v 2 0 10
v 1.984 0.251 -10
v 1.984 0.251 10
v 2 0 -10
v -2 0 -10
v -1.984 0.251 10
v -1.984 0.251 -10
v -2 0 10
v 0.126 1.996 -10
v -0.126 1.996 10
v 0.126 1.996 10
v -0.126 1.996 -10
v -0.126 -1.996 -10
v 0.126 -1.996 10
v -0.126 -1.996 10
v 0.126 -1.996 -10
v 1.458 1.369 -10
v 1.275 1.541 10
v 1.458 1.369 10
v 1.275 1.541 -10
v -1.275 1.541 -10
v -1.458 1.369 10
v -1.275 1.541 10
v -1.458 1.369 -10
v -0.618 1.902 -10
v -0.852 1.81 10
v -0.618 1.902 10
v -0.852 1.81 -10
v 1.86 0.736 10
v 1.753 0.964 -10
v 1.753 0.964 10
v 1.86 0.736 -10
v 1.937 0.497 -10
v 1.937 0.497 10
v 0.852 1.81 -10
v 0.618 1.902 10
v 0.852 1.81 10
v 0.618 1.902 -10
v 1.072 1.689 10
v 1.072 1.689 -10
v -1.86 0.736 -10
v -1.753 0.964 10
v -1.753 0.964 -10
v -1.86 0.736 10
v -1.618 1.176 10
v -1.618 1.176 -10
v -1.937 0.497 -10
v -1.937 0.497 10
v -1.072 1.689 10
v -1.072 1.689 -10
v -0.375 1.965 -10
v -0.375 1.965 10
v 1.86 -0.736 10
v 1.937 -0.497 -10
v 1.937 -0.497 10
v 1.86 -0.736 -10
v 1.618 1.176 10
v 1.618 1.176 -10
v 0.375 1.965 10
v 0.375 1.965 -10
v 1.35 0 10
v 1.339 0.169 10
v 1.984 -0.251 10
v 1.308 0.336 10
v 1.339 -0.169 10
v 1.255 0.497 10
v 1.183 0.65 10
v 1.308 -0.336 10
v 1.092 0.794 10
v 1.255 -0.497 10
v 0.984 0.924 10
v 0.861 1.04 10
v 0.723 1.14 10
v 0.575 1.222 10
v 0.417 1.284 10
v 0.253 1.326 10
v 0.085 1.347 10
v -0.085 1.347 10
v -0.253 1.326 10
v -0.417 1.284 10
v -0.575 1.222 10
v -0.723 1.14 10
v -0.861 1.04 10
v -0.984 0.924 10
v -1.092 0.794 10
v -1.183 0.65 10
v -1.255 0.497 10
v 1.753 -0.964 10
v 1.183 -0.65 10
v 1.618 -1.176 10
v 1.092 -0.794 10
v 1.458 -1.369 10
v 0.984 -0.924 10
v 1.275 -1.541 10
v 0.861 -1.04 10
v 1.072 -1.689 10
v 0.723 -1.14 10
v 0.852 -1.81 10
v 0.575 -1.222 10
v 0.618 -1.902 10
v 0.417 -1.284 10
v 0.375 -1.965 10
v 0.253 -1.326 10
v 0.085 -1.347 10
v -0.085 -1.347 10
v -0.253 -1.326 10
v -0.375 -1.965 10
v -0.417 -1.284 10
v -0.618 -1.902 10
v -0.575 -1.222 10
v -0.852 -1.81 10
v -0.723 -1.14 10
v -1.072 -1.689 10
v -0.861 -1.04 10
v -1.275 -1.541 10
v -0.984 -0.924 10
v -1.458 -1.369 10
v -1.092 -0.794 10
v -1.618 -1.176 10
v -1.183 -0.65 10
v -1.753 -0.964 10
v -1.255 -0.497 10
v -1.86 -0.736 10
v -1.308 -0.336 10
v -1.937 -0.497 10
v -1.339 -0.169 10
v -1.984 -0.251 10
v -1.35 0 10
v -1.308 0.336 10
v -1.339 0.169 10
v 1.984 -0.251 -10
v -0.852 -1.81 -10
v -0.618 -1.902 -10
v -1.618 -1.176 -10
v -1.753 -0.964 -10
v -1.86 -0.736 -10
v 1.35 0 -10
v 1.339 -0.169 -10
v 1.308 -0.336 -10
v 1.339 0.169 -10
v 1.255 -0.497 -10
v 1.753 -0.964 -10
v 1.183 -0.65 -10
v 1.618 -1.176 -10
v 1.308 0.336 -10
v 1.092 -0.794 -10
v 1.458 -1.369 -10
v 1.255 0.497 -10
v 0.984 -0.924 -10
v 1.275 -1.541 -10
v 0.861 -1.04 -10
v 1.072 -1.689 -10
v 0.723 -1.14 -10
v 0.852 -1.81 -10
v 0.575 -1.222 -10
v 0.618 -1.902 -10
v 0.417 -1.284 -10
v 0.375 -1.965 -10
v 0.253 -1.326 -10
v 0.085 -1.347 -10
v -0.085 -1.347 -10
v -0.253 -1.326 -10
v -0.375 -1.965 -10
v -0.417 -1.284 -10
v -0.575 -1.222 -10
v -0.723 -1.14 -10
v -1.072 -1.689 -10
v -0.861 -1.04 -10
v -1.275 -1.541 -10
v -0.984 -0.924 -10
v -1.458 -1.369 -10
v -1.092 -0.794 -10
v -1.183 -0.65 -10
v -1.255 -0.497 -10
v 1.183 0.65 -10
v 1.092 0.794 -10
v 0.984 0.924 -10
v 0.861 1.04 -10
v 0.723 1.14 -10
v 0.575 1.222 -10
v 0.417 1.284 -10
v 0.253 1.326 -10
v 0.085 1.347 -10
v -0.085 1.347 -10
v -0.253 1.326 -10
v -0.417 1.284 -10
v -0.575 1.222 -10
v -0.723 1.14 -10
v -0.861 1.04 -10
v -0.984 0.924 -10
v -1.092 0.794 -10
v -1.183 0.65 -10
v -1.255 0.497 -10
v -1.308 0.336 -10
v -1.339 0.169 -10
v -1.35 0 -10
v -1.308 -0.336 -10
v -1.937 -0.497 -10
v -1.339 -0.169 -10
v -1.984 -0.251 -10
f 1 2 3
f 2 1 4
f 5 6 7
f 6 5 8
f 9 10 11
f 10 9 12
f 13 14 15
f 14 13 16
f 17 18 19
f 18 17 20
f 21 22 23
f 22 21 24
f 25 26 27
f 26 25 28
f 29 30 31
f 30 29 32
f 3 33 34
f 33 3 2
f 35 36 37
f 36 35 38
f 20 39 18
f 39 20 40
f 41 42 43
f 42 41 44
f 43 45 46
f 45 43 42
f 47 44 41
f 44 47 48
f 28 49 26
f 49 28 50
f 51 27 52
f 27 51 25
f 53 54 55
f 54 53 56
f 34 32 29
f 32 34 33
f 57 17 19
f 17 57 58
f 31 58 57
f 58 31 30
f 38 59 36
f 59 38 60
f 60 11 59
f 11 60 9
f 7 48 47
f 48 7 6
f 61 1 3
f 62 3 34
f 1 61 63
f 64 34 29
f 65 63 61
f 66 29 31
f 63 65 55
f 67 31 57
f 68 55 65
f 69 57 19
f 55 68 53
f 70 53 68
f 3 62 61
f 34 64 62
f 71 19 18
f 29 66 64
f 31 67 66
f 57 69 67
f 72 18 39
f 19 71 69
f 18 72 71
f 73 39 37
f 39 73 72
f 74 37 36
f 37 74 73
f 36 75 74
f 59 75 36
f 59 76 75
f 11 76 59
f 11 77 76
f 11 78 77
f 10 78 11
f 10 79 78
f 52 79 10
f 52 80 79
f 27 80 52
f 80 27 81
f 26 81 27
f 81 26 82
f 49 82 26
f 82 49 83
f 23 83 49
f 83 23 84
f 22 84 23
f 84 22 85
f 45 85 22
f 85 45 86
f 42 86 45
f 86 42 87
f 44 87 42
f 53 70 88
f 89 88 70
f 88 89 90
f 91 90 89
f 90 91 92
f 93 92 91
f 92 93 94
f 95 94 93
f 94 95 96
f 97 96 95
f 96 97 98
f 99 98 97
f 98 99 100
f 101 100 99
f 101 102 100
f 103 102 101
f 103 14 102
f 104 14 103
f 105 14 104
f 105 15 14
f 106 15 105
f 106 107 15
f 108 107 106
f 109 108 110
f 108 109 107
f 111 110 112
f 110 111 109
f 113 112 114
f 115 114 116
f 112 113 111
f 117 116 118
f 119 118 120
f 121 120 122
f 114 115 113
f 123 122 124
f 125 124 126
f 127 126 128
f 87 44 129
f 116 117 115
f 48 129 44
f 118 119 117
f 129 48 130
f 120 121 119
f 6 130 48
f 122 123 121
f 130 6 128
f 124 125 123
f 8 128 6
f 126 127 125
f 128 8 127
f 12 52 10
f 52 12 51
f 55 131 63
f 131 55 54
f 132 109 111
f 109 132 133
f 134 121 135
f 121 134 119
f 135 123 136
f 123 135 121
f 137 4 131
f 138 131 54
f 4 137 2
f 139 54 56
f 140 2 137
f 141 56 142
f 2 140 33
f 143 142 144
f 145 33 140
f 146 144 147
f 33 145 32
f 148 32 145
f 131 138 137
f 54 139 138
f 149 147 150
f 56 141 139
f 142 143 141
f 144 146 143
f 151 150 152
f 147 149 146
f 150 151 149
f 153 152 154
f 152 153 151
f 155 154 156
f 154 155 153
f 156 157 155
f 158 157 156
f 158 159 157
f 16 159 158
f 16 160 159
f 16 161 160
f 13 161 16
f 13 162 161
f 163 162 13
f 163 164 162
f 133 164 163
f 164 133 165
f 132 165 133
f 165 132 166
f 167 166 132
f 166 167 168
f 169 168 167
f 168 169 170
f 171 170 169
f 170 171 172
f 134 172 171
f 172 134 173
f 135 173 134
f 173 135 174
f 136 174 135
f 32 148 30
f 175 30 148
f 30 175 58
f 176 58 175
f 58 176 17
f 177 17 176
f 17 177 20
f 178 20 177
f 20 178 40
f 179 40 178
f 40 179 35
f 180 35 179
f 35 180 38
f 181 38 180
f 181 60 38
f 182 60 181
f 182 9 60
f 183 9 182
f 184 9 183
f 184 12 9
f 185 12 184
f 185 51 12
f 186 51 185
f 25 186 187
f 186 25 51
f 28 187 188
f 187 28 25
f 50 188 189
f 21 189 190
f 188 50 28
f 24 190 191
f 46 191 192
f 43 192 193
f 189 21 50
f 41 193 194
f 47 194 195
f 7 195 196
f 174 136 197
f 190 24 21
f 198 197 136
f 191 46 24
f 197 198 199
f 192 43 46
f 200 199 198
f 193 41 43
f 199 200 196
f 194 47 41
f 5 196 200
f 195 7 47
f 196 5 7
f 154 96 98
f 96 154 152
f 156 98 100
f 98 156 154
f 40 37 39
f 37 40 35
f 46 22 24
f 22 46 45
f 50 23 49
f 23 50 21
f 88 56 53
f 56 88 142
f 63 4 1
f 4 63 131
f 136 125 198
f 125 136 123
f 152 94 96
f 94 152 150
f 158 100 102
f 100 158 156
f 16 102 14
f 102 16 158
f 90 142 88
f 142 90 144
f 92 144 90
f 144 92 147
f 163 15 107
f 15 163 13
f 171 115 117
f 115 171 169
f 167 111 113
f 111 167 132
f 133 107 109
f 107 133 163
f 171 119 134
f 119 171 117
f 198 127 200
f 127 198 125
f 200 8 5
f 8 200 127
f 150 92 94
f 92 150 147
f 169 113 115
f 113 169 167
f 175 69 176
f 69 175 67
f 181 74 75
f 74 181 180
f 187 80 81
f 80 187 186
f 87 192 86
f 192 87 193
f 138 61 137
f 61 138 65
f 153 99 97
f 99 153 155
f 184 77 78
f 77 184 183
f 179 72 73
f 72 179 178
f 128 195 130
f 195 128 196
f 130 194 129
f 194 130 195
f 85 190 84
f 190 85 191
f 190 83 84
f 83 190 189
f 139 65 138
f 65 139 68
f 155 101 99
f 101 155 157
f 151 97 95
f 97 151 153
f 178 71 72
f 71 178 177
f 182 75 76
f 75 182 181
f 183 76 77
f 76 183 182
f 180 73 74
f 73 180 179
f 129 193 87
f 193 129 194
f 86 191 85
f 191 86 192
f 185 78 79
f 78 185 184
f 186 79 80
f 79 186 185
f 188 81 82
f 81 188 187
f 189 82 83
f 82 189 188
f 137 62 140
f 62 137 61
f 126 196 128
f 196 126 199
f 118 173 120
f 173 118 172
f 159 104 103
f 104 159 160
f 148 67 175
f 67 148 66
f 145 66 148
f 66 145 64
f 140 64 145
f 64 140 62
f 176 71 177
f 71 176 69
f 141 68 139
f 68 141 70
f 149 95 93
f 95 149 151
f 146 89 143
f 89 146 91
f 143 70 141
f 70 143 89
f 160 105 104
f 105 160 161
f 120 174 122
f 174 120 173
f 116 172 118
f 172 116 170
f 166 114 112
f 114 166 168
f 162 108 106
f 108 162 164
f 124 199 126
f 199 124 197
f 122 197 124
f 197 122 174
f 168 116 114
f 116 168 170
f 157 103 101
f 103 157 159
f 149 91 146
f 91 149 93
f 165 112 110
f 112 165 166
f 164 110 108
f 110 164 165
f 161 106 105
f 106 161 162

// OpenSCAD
$fn = 50;


difference() {
	union() {
		translate(v = [0, 0, -10.0000000000]) {
			cylinder(h = 20, r = 2.0000000000);
		}
	}
	union() {
		translate(v = [0, 0, -100.0000000000]) {
			cylinder(h = 200, r = 1.3500000000);
		}
	}
}
